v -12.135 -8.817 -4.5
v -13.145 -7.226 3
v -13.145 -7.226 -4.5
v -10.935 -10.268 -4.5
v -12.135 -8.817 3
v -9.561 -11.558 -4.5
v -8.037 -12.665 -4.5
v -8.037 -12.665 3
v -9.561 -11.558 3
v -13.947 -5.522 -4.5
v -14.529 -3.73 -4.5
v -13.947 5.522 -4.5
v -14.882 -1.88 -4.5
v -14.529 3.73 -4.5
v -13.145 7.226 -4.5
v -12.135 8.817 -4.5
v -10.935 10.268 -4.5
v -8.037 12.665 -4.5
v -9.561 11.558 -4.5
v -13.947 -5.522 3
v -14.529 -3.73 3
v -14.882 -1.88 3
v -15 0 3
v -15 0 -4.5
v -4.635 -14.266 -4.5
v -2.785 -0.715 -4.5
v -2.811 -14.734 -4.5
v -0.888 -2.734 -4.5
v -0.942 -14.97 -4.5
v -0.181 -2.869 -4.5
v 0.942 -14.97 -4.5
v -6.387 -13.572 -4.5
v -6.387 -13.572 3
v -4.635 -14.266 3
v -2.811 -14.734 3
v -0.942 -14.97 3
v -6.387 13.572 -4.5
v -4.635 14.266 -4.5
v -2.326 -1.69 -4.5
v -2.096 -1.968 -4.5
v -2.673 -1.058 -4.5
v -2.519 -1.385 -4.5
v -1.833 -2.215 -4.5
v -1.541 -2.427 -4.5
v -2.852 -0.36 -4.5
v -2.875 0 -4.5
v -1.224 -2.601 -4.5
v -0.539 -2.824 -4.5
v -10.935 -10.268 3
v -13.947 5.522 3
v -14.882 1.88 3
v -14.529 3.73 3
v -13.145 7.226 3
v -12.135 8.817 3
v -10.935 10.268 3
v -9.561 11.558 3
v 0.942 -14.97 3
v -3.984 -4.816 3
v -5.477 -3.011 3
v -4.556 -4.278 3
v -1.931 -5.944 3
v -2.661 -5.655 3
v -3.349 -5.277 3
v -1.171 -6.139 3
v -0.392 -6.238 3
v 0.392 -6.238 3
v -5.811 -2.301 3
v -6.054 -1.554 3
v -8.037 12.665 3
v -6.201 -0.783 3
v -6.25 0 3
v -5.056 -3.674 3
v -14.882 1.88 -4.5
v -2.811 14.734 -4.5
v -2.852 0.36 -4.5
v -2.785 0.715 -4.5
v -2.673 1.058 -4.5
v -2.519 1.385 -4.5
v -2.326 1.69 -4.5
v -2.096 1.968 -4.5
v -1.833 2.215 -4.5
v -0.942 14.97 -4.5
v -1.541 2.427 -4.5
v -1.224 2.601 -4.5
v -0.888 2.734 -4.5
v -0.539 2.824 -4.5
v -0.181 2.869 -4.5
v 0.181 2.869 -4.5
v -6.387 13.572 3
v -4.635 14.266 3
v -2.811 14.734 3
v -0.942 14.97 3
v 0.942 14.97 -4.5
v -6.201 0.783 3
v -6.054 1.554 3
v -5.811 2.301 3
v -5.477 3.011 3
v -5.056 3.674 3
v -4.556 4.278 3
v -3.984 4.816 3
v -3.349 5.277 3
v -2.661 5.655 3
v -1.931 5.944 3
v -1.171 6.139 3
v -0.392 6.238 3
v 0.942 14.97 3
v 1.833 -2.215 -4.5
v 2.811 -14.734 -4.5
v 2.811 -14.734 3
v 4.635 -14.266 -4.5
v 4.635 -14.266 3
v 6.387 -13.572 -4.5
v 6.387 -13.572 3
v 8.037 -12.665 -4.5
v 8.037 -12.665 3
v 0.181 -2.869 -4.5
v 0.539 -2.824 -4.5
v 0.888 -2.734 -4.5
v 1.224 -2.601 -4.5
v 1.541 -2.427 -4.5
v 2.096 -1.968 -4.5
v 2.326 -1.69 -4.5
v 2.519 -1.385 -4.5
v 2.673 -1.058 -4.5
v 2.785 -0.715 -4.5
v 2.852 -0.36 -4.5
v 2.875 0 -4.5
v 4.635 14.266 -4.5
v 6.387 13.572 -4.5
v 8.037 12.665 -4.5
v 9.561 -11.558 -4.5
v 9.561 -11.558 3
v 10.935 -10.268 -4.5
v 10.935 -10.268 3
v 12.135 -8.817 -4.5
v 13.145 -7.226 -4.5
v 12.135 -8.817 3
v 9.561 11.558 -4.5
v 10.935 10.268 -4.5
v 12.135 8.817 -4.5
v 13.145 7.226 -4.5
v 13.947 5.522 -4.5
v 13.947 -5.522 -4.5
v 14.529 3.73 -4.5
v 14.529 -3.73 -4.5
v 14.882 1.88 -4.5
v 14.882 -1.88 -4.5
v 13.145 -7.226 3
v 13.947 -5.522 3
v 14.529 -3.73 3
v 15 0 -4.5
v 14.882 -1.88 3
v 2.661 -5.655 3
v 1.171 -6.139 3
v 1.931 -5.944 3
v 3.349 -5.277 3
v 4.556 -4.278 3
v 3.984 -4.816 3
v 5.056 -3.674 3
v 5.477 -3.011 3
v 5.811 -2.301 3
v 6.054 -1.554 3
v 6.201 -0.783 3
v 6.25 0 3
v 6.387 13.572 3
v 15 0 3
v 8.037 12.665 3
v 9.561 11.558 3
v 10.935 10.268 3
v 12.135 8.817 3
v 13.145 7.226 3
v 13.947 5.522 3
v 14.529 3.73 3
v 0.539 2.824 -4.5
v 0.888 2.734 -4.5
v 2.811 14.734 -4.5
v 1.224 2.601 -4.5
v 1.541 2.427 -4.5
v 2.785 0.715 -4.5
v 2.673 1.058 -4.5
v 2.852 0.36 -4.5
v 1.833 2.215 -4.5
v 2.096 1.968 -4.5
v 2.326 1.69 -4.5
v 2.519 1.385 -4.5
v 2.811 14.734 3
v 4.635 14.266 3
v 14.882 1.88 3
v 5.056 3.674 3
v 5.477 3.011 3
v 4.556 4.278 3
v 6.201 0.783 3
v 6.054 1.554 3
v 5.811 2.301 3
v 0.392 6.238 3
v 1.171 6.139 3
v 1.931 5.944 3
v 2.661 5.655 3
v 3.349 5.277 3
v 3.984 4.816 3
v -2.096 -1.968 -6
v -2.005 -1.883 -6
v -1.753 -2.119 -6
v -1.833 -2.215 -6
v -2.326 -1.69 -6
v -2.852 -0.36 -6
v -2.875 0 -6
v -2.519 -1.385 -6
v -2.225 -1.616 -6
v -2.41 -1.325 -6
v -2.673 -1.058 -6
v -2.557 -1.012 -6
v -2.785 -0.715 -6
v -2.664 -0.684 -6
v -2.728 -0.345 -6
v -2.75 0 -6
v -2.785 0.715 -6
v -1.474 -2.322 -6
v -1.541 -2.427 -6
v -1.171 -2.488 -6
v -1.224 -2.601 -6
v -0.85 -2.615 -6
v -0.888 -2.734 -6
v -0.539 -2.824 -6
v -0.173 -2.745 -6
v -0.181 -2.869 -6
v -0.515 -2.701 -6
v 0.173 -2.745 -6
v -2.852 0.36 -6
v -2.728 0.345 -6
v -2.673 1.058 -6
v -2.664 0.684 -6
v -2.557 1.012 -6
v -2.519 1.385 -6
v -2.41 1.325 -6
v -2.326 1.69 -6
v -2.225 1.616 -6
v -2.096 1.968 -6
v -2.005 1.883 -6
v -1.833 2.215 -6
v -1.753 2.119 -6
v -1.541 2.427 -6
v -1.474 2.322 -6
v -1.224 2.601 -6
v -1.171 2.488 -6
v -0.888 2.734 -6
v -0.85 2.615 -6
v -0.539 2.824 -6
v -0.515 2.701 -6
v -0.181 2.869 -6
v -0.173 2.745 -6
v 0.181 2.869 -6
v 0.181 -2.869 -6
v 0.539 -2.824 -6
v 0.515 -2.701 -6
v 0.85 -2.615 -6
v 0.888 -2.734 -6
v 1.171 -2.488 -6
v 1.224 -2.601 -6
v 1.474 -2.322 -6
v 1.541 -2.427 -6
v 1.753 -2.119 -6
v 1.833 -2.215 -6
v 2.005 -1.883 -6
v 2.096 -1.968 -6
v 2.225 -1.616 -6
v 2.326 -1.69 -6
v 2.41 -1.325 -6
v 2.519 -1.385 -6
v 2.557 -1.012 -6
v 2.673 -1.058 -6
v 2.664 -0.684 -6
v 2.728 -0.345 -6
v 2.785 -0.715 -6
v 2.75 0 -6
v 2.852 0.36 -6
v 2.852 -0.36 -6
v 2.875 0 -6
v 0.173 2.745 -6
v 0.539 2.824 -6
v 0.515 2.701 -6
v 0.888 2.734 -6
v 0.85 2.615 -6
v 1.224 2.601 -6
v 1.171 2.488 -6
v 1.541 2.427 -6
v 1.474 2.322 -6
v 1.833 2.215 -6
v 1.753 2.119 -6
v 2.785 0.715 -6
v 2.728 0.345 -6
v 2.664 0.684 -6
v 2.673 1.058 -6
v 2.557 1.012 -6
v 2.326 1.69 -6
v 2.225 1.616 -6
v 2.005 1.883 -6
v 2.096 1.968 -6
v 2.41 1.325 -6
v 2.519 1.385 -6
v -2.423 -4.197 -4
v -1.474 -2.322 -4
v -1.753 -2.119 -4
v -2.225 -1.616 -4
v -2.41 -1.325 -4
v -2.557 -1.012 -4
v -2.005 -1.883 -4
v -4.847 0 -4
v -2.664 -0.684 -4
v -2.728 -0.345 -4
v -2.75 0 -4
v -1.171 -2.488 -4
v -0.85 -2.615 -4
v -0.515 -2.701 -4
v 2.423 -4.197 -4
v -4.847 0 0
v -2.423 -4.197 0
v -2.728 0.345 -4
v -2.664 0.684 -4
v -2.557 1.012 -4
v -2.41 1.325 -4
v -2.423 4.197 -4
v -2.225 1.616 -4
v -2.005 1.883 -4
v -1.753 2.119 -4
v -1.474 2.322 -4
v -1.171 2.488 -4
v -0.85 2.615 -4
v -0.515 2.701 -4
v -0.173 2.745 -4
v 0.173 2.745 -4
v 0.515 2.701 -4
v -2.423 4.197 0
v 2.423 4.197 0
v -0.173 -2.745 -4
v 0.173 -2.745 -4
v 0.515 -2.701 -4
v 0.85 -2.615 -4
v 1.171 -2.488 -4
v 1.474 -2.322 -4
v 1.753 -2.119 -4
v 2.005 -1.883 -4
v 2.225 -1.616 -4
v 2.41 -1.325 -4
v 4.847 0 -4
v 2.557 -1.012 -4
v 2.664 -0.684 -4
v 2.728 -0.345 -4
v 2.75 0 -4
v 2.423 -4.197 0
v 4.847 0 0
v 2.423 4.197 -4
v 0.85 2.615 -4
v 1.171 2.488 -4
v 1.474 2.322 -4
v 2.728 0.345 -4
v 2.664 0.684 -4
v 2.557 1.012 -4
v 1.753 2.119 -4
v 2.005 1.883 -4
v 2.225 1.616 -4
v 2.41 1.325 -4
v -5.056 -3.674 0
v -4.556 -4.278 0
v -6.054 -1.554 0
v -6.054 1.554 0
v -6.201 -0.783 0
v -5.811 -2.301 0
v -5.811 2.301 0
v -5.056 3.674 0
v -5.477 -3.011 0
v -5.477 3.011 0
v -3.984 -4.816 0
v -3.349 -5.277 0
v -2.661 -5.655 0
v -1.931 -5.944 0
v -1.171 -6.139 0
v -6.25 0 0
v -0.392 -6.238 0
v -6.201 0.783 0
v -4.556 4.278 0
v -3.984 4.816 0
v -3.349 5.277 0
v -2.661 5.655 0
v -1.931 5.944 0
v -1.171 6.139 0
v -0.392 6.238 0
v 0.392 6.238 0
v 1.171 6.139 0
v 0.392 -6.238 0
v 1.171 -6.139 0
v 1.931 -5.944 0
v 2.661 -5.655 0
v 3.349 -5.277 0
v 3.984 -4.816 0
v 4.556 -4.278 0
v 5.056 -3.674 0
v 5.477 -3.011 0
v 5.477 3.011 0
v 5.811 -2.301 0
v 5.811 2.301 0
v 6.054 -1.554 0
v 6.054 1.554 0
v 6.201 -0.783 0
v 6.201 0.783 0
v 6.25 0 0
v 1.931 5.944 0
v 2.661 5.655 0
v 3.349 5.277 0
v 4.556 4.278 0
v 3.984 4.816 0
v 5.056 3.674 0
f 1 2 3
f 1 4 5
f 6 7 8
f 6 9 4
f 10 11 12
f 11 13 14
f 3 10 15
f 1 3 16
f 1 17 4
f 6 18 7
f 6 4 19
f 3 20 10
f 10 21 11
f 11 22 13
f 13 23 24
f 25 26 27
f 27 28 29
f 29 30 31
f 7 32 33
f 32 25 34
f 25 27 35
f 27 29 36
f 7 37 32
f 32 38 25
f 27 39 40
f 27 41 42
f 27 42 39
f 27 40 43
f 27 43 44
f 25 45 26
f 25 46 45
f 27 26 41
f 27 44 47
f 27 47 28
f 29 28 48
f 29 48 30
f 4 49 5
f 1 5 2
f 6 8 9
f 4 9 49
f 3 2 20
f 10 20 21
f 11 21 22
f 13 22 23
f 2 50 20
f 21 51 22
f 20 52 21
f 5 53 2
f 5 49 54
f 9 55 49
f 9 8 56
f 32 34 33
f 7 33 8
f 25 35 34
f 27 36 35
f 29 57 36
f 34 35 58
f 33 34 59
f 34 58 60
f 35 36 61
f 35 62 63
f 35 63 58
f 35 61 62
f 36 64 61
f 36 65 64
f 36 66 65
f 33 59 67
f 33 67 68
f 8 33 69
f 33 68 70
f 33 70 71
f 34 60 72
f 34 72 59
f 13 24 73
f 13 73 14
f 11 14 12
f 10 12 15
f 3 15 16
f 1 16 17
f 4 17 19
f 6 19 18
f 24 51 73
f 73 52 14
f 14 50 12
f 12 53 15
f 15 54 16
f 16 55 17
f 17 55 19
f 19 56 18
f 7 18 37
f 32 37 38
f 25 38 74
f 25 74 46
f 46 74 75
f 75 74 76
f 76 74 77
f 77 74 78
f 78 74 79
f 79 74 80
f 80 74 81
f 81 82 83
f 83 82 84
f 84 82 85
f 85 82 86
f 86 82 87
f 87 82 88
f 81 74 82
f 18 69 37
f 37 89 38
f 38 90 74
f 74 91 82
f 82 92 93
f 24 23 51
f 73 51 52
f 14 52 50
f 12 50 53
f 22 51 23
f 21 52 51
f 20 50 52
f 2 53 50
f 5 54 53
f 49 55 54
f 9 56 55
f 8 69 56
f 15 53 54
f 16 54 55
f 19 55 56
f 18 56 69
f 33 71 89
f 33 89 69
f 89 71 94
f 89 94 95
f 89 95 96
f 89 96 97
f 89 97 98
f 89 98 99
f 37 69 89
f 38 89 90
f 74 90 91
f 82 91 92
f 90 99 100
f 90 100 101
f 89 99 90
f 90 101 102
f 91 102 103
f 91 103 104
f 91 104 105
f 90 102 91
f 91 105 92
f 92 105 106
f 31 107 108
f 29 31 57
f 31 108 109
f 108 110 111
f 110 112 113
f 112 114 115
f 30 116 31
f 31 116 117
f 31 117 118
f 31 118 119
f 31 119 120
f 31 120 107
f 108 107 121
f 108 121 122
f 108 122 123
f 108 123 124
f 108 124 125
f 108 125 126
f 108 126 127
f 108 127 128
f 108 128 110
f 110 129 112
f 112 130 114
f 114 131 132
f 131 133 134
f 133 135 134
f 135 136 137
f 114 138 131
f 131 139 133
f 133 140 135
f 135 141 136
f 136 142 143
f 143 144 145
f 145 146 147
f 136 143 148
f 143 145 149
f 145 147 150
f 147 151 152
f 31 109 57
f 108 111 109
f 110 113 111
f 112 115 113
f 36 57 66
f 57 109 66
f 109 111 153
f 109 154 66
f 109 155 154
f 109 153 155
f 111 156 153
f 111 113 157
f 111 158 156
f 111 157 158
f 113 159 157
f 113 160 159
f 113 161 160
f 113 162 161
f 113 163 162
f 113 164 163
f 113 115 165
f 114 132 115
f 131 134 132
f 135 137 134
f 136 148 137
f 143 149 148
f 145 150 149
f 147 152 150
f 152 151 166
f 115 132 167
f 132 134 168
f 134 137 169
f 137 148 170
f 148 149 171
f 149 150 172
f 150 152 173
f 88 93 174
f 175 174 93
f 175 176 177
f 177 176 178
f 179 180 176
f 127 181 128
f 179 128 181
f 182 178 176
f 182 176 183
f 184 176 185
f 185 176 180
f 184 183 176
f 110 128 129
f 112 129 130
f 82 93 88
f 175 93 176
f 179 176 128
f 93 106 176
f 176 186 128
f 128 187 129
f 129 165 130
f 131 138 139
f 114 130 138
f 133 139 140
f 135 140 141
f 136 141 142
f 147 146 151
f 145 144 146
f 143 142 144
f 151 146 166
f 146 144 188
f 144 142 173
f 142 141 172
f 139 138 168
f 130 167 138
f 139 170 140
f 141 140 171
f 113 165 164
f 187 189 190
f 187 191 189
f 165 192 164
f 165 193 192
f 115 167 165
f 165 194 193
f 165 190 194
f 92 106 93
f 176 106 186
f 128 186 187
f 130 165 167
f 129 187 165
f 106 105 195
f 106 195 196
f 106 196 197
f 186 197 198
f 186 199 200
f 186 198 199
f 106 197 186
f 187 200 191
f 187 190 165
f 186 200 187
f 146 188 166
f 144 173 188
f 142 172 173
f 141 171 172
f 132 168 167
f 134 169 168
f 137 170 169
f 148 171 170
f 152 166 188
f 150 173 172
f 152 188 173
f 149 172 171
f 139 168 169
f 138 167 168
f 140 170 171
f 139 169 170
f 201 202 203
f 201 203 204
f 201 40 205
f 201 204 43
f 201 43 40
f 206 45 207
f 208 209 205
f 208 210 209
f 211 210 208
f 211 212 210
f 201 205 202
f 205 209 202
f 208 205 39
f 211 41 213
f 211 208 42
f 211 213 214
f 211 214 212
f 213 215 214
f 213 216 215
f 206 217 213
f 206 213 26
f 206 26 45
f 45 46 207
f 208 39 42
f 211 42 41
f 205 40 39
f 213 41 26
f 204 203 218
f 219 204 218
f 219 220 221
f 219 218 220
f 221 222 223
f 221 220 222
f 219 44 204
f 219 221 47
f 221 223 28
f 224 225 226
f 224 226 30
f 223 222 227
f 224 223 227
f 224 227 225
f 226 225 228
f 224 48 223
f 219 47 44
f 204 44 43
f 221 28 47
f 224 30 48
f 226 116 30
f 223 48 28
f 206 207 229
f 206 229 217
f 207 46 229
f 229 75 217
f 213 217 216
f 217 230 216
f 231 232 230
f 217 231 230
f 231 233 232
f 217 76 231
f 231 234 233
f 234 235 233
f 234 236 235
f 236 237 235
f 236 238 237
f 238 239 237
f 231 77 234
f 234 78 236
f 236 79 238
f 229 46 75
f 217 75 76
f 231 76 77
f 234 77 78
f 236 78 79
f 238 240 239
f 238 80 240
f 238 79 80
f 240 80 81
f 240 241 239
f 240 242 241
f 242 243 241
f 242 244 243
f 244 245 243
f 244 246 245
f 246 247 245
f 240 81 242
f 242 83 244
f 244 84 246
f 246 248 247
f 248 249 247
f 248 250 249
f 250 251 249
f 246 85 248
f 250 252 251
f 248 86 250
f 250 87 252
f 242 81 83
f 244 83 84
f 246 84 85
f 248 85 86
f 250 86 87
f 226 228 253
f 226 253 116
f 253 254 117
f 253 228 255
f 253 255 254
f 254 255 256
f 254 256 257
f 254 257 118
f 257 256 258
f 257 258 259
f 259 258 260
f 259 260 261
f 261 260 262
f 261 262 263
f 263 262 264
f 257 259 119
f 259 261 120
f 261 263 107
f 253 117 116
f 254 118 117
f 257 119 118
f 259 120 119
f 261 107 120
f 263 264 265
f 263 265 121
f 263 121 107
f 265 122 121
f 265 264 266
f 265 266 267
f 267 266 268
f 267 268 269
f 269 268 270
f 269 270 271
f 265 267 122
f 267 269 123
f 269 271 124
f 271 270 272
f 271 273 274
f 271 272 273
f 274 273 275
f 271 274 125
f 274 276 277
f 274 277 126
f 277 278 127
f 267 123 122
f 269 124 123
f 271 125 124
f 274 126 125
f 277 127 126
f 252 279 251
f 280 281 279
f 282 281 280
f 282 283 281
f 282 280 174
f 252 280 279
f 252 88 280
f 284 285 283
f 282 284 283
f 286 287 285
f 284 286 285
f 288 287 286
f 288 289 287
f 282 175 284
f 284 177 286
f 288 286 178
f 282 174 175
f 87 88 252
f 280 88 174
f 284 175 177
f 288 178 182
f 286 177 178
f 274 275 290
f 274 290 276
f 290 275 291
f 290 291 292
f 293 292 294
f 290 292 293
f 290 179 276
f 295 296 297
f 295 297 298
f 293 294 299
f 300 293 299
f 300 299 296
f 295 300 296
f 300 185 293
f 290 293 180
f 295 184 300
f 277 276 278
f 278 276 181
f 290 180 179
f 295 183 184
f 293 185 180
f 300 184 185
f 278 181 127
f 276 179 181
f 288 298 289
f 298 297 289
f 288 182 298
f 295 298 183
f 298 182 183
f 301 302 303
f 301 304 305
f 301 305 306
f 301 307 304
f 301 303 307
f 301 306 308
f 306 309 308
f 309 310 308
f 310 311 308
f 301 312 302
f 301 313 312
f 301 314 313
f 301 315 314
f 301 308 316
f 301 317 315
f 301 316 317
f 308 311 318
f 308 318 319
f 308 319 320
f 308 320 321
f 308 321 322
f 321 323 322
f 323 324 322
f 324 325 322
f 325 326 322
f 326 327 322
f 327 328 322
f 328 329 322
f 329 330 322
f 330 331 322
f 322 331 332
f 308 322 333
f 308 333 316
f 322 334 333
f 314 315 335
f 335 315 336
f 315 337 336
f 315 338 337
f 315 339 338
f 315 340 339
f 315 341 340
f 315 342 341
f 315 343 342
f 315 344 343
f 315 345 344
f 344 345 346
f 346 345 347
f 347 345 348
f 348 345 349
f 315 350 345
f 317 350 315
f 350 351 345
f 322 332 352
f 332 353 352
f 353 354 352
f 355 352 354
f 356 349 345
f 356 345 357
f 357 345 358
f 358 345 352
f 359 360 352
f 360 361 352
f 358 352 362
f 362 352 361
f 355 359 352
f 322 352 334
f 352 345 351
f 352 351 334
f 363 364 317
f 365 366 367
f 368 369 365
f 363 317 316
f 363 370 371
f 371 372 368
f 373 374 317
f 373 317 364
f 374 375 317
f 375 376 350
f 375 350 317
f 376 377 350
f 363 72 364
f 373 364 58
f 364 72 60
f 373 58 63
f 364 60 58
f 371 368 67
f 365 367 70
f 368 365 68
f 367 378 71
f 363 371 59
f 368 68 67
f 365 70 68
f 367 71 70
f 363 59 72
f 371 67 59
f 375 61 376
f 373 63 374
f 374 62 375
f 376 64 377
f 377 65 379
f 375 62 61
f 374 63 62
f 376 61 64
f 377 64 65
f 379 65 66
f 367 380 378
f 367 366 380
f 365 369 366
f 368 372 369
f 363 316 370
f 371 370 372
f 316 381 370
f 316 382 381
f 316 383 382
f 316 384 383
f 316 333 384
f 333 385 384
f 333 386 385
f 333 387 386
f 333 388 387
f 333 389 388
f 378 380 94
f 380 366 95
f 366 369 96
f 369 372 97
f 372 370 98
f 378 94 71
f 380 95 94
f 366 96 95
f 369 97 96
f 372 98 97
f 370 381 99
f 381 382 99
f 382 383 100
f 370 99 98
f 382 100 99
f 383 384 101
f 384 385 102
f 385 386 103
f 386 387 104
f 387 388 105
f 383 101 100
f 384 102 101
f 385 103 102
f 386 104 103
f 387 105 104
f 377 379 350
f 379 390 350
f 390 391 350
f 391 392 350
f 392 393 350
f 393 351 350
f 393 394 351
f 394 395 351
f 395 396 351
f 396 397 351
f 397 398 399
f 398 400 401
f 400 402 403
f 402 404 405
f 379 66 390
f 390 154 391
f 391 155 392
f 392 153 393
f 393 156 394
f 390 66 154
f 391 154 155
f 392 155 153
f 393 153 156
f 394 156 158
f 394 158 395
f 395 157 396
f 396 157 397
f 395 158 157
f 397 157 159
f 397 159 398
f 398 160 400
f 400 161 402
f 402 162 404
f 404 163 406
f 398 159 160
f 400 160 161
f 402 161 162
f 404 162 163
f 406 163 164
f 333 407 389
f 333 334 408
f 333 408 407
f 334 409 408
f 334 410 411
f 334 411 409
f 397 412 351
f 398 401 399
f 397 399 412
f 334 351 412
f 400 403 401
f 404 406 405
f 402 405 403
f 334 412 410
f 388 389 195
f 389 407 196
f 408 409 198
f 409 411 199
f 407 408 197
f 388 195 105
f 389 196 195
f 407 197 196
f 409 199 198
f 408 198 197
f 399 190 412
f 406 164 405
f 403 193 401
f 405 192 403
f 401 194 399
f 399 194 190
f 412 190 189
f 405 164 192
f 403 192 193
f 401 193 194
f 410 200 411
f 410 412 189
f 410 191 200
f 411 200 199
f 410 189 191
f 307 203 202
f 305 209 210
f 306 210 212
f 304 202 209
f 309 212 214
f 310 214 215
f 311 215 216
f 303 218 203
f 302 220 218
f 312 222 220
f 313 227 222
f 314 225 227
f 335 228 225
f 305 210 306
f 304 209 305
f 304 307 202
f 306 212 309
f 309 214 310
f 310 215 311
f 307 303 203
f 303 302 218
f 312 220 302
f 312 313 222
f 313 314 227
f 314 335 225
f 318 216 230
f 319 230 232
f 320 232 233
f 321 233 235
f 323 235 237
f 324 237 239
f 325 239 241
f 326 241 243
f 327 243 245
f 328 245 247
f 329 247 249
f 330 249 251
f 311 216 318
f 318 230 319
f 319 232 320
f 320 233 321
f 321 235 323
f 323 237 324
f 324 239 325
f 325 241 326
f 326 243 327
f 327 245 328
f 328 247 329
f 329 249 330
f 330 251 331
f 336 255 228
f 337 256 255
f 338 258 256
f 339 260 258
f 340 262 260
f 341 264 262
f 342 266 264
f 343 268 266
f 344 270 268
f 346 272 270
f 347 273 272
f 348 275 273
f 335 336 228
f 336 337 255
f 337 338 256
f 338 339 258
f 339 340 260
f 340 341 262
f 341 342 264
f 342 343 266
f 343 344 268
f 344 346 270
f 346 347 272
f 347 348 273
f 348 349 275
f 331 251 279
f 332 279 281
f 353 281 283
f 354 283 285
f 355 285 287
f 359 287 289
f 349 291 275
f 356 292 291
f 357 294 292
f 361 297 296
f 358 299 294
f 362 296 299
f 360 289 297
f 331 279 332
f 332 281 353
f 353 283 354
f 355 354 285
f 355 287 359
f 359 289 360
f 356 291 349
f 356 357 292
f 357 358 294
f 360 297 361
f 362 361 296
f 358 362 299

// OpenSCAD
$fn = 50;

difference() {
	union() {
		translate(v = [0, 0, -4.5]) {
			cylinder(h = 7.5, r = 15.0);
		}
		#translate(v = [0, 0, -6.0]) {
			cylinder(h = 6, r = 2.875);
		}
	}
	union() {
		translate(v = [0, 0, 0]) {
			rotate(a = [0, 0, 0]) {
				difference() {
					union() {
						translate(v = [0, 0, -4]) {
							linear_extrude(height = 4) {
								polygon(points = [[4.8468, 0.0], [2.4234000000000004, 4.197451927062417], [-2.423399999999999, 4.197451927062417], [-4.8468, 5.935618106107392e-16], [-2.423400000000002, -4.197451927062416], [2.423399999999997, -4.197451927062419]]);
							}
						}
					}
					union();
				}
			}
		}
		#cylinder(h = 3, r = 6.25);
		#translate(v = [0, 0, -100.0]) {
			cylinder(h = 200, r = 2.75);
		}
	}
}
